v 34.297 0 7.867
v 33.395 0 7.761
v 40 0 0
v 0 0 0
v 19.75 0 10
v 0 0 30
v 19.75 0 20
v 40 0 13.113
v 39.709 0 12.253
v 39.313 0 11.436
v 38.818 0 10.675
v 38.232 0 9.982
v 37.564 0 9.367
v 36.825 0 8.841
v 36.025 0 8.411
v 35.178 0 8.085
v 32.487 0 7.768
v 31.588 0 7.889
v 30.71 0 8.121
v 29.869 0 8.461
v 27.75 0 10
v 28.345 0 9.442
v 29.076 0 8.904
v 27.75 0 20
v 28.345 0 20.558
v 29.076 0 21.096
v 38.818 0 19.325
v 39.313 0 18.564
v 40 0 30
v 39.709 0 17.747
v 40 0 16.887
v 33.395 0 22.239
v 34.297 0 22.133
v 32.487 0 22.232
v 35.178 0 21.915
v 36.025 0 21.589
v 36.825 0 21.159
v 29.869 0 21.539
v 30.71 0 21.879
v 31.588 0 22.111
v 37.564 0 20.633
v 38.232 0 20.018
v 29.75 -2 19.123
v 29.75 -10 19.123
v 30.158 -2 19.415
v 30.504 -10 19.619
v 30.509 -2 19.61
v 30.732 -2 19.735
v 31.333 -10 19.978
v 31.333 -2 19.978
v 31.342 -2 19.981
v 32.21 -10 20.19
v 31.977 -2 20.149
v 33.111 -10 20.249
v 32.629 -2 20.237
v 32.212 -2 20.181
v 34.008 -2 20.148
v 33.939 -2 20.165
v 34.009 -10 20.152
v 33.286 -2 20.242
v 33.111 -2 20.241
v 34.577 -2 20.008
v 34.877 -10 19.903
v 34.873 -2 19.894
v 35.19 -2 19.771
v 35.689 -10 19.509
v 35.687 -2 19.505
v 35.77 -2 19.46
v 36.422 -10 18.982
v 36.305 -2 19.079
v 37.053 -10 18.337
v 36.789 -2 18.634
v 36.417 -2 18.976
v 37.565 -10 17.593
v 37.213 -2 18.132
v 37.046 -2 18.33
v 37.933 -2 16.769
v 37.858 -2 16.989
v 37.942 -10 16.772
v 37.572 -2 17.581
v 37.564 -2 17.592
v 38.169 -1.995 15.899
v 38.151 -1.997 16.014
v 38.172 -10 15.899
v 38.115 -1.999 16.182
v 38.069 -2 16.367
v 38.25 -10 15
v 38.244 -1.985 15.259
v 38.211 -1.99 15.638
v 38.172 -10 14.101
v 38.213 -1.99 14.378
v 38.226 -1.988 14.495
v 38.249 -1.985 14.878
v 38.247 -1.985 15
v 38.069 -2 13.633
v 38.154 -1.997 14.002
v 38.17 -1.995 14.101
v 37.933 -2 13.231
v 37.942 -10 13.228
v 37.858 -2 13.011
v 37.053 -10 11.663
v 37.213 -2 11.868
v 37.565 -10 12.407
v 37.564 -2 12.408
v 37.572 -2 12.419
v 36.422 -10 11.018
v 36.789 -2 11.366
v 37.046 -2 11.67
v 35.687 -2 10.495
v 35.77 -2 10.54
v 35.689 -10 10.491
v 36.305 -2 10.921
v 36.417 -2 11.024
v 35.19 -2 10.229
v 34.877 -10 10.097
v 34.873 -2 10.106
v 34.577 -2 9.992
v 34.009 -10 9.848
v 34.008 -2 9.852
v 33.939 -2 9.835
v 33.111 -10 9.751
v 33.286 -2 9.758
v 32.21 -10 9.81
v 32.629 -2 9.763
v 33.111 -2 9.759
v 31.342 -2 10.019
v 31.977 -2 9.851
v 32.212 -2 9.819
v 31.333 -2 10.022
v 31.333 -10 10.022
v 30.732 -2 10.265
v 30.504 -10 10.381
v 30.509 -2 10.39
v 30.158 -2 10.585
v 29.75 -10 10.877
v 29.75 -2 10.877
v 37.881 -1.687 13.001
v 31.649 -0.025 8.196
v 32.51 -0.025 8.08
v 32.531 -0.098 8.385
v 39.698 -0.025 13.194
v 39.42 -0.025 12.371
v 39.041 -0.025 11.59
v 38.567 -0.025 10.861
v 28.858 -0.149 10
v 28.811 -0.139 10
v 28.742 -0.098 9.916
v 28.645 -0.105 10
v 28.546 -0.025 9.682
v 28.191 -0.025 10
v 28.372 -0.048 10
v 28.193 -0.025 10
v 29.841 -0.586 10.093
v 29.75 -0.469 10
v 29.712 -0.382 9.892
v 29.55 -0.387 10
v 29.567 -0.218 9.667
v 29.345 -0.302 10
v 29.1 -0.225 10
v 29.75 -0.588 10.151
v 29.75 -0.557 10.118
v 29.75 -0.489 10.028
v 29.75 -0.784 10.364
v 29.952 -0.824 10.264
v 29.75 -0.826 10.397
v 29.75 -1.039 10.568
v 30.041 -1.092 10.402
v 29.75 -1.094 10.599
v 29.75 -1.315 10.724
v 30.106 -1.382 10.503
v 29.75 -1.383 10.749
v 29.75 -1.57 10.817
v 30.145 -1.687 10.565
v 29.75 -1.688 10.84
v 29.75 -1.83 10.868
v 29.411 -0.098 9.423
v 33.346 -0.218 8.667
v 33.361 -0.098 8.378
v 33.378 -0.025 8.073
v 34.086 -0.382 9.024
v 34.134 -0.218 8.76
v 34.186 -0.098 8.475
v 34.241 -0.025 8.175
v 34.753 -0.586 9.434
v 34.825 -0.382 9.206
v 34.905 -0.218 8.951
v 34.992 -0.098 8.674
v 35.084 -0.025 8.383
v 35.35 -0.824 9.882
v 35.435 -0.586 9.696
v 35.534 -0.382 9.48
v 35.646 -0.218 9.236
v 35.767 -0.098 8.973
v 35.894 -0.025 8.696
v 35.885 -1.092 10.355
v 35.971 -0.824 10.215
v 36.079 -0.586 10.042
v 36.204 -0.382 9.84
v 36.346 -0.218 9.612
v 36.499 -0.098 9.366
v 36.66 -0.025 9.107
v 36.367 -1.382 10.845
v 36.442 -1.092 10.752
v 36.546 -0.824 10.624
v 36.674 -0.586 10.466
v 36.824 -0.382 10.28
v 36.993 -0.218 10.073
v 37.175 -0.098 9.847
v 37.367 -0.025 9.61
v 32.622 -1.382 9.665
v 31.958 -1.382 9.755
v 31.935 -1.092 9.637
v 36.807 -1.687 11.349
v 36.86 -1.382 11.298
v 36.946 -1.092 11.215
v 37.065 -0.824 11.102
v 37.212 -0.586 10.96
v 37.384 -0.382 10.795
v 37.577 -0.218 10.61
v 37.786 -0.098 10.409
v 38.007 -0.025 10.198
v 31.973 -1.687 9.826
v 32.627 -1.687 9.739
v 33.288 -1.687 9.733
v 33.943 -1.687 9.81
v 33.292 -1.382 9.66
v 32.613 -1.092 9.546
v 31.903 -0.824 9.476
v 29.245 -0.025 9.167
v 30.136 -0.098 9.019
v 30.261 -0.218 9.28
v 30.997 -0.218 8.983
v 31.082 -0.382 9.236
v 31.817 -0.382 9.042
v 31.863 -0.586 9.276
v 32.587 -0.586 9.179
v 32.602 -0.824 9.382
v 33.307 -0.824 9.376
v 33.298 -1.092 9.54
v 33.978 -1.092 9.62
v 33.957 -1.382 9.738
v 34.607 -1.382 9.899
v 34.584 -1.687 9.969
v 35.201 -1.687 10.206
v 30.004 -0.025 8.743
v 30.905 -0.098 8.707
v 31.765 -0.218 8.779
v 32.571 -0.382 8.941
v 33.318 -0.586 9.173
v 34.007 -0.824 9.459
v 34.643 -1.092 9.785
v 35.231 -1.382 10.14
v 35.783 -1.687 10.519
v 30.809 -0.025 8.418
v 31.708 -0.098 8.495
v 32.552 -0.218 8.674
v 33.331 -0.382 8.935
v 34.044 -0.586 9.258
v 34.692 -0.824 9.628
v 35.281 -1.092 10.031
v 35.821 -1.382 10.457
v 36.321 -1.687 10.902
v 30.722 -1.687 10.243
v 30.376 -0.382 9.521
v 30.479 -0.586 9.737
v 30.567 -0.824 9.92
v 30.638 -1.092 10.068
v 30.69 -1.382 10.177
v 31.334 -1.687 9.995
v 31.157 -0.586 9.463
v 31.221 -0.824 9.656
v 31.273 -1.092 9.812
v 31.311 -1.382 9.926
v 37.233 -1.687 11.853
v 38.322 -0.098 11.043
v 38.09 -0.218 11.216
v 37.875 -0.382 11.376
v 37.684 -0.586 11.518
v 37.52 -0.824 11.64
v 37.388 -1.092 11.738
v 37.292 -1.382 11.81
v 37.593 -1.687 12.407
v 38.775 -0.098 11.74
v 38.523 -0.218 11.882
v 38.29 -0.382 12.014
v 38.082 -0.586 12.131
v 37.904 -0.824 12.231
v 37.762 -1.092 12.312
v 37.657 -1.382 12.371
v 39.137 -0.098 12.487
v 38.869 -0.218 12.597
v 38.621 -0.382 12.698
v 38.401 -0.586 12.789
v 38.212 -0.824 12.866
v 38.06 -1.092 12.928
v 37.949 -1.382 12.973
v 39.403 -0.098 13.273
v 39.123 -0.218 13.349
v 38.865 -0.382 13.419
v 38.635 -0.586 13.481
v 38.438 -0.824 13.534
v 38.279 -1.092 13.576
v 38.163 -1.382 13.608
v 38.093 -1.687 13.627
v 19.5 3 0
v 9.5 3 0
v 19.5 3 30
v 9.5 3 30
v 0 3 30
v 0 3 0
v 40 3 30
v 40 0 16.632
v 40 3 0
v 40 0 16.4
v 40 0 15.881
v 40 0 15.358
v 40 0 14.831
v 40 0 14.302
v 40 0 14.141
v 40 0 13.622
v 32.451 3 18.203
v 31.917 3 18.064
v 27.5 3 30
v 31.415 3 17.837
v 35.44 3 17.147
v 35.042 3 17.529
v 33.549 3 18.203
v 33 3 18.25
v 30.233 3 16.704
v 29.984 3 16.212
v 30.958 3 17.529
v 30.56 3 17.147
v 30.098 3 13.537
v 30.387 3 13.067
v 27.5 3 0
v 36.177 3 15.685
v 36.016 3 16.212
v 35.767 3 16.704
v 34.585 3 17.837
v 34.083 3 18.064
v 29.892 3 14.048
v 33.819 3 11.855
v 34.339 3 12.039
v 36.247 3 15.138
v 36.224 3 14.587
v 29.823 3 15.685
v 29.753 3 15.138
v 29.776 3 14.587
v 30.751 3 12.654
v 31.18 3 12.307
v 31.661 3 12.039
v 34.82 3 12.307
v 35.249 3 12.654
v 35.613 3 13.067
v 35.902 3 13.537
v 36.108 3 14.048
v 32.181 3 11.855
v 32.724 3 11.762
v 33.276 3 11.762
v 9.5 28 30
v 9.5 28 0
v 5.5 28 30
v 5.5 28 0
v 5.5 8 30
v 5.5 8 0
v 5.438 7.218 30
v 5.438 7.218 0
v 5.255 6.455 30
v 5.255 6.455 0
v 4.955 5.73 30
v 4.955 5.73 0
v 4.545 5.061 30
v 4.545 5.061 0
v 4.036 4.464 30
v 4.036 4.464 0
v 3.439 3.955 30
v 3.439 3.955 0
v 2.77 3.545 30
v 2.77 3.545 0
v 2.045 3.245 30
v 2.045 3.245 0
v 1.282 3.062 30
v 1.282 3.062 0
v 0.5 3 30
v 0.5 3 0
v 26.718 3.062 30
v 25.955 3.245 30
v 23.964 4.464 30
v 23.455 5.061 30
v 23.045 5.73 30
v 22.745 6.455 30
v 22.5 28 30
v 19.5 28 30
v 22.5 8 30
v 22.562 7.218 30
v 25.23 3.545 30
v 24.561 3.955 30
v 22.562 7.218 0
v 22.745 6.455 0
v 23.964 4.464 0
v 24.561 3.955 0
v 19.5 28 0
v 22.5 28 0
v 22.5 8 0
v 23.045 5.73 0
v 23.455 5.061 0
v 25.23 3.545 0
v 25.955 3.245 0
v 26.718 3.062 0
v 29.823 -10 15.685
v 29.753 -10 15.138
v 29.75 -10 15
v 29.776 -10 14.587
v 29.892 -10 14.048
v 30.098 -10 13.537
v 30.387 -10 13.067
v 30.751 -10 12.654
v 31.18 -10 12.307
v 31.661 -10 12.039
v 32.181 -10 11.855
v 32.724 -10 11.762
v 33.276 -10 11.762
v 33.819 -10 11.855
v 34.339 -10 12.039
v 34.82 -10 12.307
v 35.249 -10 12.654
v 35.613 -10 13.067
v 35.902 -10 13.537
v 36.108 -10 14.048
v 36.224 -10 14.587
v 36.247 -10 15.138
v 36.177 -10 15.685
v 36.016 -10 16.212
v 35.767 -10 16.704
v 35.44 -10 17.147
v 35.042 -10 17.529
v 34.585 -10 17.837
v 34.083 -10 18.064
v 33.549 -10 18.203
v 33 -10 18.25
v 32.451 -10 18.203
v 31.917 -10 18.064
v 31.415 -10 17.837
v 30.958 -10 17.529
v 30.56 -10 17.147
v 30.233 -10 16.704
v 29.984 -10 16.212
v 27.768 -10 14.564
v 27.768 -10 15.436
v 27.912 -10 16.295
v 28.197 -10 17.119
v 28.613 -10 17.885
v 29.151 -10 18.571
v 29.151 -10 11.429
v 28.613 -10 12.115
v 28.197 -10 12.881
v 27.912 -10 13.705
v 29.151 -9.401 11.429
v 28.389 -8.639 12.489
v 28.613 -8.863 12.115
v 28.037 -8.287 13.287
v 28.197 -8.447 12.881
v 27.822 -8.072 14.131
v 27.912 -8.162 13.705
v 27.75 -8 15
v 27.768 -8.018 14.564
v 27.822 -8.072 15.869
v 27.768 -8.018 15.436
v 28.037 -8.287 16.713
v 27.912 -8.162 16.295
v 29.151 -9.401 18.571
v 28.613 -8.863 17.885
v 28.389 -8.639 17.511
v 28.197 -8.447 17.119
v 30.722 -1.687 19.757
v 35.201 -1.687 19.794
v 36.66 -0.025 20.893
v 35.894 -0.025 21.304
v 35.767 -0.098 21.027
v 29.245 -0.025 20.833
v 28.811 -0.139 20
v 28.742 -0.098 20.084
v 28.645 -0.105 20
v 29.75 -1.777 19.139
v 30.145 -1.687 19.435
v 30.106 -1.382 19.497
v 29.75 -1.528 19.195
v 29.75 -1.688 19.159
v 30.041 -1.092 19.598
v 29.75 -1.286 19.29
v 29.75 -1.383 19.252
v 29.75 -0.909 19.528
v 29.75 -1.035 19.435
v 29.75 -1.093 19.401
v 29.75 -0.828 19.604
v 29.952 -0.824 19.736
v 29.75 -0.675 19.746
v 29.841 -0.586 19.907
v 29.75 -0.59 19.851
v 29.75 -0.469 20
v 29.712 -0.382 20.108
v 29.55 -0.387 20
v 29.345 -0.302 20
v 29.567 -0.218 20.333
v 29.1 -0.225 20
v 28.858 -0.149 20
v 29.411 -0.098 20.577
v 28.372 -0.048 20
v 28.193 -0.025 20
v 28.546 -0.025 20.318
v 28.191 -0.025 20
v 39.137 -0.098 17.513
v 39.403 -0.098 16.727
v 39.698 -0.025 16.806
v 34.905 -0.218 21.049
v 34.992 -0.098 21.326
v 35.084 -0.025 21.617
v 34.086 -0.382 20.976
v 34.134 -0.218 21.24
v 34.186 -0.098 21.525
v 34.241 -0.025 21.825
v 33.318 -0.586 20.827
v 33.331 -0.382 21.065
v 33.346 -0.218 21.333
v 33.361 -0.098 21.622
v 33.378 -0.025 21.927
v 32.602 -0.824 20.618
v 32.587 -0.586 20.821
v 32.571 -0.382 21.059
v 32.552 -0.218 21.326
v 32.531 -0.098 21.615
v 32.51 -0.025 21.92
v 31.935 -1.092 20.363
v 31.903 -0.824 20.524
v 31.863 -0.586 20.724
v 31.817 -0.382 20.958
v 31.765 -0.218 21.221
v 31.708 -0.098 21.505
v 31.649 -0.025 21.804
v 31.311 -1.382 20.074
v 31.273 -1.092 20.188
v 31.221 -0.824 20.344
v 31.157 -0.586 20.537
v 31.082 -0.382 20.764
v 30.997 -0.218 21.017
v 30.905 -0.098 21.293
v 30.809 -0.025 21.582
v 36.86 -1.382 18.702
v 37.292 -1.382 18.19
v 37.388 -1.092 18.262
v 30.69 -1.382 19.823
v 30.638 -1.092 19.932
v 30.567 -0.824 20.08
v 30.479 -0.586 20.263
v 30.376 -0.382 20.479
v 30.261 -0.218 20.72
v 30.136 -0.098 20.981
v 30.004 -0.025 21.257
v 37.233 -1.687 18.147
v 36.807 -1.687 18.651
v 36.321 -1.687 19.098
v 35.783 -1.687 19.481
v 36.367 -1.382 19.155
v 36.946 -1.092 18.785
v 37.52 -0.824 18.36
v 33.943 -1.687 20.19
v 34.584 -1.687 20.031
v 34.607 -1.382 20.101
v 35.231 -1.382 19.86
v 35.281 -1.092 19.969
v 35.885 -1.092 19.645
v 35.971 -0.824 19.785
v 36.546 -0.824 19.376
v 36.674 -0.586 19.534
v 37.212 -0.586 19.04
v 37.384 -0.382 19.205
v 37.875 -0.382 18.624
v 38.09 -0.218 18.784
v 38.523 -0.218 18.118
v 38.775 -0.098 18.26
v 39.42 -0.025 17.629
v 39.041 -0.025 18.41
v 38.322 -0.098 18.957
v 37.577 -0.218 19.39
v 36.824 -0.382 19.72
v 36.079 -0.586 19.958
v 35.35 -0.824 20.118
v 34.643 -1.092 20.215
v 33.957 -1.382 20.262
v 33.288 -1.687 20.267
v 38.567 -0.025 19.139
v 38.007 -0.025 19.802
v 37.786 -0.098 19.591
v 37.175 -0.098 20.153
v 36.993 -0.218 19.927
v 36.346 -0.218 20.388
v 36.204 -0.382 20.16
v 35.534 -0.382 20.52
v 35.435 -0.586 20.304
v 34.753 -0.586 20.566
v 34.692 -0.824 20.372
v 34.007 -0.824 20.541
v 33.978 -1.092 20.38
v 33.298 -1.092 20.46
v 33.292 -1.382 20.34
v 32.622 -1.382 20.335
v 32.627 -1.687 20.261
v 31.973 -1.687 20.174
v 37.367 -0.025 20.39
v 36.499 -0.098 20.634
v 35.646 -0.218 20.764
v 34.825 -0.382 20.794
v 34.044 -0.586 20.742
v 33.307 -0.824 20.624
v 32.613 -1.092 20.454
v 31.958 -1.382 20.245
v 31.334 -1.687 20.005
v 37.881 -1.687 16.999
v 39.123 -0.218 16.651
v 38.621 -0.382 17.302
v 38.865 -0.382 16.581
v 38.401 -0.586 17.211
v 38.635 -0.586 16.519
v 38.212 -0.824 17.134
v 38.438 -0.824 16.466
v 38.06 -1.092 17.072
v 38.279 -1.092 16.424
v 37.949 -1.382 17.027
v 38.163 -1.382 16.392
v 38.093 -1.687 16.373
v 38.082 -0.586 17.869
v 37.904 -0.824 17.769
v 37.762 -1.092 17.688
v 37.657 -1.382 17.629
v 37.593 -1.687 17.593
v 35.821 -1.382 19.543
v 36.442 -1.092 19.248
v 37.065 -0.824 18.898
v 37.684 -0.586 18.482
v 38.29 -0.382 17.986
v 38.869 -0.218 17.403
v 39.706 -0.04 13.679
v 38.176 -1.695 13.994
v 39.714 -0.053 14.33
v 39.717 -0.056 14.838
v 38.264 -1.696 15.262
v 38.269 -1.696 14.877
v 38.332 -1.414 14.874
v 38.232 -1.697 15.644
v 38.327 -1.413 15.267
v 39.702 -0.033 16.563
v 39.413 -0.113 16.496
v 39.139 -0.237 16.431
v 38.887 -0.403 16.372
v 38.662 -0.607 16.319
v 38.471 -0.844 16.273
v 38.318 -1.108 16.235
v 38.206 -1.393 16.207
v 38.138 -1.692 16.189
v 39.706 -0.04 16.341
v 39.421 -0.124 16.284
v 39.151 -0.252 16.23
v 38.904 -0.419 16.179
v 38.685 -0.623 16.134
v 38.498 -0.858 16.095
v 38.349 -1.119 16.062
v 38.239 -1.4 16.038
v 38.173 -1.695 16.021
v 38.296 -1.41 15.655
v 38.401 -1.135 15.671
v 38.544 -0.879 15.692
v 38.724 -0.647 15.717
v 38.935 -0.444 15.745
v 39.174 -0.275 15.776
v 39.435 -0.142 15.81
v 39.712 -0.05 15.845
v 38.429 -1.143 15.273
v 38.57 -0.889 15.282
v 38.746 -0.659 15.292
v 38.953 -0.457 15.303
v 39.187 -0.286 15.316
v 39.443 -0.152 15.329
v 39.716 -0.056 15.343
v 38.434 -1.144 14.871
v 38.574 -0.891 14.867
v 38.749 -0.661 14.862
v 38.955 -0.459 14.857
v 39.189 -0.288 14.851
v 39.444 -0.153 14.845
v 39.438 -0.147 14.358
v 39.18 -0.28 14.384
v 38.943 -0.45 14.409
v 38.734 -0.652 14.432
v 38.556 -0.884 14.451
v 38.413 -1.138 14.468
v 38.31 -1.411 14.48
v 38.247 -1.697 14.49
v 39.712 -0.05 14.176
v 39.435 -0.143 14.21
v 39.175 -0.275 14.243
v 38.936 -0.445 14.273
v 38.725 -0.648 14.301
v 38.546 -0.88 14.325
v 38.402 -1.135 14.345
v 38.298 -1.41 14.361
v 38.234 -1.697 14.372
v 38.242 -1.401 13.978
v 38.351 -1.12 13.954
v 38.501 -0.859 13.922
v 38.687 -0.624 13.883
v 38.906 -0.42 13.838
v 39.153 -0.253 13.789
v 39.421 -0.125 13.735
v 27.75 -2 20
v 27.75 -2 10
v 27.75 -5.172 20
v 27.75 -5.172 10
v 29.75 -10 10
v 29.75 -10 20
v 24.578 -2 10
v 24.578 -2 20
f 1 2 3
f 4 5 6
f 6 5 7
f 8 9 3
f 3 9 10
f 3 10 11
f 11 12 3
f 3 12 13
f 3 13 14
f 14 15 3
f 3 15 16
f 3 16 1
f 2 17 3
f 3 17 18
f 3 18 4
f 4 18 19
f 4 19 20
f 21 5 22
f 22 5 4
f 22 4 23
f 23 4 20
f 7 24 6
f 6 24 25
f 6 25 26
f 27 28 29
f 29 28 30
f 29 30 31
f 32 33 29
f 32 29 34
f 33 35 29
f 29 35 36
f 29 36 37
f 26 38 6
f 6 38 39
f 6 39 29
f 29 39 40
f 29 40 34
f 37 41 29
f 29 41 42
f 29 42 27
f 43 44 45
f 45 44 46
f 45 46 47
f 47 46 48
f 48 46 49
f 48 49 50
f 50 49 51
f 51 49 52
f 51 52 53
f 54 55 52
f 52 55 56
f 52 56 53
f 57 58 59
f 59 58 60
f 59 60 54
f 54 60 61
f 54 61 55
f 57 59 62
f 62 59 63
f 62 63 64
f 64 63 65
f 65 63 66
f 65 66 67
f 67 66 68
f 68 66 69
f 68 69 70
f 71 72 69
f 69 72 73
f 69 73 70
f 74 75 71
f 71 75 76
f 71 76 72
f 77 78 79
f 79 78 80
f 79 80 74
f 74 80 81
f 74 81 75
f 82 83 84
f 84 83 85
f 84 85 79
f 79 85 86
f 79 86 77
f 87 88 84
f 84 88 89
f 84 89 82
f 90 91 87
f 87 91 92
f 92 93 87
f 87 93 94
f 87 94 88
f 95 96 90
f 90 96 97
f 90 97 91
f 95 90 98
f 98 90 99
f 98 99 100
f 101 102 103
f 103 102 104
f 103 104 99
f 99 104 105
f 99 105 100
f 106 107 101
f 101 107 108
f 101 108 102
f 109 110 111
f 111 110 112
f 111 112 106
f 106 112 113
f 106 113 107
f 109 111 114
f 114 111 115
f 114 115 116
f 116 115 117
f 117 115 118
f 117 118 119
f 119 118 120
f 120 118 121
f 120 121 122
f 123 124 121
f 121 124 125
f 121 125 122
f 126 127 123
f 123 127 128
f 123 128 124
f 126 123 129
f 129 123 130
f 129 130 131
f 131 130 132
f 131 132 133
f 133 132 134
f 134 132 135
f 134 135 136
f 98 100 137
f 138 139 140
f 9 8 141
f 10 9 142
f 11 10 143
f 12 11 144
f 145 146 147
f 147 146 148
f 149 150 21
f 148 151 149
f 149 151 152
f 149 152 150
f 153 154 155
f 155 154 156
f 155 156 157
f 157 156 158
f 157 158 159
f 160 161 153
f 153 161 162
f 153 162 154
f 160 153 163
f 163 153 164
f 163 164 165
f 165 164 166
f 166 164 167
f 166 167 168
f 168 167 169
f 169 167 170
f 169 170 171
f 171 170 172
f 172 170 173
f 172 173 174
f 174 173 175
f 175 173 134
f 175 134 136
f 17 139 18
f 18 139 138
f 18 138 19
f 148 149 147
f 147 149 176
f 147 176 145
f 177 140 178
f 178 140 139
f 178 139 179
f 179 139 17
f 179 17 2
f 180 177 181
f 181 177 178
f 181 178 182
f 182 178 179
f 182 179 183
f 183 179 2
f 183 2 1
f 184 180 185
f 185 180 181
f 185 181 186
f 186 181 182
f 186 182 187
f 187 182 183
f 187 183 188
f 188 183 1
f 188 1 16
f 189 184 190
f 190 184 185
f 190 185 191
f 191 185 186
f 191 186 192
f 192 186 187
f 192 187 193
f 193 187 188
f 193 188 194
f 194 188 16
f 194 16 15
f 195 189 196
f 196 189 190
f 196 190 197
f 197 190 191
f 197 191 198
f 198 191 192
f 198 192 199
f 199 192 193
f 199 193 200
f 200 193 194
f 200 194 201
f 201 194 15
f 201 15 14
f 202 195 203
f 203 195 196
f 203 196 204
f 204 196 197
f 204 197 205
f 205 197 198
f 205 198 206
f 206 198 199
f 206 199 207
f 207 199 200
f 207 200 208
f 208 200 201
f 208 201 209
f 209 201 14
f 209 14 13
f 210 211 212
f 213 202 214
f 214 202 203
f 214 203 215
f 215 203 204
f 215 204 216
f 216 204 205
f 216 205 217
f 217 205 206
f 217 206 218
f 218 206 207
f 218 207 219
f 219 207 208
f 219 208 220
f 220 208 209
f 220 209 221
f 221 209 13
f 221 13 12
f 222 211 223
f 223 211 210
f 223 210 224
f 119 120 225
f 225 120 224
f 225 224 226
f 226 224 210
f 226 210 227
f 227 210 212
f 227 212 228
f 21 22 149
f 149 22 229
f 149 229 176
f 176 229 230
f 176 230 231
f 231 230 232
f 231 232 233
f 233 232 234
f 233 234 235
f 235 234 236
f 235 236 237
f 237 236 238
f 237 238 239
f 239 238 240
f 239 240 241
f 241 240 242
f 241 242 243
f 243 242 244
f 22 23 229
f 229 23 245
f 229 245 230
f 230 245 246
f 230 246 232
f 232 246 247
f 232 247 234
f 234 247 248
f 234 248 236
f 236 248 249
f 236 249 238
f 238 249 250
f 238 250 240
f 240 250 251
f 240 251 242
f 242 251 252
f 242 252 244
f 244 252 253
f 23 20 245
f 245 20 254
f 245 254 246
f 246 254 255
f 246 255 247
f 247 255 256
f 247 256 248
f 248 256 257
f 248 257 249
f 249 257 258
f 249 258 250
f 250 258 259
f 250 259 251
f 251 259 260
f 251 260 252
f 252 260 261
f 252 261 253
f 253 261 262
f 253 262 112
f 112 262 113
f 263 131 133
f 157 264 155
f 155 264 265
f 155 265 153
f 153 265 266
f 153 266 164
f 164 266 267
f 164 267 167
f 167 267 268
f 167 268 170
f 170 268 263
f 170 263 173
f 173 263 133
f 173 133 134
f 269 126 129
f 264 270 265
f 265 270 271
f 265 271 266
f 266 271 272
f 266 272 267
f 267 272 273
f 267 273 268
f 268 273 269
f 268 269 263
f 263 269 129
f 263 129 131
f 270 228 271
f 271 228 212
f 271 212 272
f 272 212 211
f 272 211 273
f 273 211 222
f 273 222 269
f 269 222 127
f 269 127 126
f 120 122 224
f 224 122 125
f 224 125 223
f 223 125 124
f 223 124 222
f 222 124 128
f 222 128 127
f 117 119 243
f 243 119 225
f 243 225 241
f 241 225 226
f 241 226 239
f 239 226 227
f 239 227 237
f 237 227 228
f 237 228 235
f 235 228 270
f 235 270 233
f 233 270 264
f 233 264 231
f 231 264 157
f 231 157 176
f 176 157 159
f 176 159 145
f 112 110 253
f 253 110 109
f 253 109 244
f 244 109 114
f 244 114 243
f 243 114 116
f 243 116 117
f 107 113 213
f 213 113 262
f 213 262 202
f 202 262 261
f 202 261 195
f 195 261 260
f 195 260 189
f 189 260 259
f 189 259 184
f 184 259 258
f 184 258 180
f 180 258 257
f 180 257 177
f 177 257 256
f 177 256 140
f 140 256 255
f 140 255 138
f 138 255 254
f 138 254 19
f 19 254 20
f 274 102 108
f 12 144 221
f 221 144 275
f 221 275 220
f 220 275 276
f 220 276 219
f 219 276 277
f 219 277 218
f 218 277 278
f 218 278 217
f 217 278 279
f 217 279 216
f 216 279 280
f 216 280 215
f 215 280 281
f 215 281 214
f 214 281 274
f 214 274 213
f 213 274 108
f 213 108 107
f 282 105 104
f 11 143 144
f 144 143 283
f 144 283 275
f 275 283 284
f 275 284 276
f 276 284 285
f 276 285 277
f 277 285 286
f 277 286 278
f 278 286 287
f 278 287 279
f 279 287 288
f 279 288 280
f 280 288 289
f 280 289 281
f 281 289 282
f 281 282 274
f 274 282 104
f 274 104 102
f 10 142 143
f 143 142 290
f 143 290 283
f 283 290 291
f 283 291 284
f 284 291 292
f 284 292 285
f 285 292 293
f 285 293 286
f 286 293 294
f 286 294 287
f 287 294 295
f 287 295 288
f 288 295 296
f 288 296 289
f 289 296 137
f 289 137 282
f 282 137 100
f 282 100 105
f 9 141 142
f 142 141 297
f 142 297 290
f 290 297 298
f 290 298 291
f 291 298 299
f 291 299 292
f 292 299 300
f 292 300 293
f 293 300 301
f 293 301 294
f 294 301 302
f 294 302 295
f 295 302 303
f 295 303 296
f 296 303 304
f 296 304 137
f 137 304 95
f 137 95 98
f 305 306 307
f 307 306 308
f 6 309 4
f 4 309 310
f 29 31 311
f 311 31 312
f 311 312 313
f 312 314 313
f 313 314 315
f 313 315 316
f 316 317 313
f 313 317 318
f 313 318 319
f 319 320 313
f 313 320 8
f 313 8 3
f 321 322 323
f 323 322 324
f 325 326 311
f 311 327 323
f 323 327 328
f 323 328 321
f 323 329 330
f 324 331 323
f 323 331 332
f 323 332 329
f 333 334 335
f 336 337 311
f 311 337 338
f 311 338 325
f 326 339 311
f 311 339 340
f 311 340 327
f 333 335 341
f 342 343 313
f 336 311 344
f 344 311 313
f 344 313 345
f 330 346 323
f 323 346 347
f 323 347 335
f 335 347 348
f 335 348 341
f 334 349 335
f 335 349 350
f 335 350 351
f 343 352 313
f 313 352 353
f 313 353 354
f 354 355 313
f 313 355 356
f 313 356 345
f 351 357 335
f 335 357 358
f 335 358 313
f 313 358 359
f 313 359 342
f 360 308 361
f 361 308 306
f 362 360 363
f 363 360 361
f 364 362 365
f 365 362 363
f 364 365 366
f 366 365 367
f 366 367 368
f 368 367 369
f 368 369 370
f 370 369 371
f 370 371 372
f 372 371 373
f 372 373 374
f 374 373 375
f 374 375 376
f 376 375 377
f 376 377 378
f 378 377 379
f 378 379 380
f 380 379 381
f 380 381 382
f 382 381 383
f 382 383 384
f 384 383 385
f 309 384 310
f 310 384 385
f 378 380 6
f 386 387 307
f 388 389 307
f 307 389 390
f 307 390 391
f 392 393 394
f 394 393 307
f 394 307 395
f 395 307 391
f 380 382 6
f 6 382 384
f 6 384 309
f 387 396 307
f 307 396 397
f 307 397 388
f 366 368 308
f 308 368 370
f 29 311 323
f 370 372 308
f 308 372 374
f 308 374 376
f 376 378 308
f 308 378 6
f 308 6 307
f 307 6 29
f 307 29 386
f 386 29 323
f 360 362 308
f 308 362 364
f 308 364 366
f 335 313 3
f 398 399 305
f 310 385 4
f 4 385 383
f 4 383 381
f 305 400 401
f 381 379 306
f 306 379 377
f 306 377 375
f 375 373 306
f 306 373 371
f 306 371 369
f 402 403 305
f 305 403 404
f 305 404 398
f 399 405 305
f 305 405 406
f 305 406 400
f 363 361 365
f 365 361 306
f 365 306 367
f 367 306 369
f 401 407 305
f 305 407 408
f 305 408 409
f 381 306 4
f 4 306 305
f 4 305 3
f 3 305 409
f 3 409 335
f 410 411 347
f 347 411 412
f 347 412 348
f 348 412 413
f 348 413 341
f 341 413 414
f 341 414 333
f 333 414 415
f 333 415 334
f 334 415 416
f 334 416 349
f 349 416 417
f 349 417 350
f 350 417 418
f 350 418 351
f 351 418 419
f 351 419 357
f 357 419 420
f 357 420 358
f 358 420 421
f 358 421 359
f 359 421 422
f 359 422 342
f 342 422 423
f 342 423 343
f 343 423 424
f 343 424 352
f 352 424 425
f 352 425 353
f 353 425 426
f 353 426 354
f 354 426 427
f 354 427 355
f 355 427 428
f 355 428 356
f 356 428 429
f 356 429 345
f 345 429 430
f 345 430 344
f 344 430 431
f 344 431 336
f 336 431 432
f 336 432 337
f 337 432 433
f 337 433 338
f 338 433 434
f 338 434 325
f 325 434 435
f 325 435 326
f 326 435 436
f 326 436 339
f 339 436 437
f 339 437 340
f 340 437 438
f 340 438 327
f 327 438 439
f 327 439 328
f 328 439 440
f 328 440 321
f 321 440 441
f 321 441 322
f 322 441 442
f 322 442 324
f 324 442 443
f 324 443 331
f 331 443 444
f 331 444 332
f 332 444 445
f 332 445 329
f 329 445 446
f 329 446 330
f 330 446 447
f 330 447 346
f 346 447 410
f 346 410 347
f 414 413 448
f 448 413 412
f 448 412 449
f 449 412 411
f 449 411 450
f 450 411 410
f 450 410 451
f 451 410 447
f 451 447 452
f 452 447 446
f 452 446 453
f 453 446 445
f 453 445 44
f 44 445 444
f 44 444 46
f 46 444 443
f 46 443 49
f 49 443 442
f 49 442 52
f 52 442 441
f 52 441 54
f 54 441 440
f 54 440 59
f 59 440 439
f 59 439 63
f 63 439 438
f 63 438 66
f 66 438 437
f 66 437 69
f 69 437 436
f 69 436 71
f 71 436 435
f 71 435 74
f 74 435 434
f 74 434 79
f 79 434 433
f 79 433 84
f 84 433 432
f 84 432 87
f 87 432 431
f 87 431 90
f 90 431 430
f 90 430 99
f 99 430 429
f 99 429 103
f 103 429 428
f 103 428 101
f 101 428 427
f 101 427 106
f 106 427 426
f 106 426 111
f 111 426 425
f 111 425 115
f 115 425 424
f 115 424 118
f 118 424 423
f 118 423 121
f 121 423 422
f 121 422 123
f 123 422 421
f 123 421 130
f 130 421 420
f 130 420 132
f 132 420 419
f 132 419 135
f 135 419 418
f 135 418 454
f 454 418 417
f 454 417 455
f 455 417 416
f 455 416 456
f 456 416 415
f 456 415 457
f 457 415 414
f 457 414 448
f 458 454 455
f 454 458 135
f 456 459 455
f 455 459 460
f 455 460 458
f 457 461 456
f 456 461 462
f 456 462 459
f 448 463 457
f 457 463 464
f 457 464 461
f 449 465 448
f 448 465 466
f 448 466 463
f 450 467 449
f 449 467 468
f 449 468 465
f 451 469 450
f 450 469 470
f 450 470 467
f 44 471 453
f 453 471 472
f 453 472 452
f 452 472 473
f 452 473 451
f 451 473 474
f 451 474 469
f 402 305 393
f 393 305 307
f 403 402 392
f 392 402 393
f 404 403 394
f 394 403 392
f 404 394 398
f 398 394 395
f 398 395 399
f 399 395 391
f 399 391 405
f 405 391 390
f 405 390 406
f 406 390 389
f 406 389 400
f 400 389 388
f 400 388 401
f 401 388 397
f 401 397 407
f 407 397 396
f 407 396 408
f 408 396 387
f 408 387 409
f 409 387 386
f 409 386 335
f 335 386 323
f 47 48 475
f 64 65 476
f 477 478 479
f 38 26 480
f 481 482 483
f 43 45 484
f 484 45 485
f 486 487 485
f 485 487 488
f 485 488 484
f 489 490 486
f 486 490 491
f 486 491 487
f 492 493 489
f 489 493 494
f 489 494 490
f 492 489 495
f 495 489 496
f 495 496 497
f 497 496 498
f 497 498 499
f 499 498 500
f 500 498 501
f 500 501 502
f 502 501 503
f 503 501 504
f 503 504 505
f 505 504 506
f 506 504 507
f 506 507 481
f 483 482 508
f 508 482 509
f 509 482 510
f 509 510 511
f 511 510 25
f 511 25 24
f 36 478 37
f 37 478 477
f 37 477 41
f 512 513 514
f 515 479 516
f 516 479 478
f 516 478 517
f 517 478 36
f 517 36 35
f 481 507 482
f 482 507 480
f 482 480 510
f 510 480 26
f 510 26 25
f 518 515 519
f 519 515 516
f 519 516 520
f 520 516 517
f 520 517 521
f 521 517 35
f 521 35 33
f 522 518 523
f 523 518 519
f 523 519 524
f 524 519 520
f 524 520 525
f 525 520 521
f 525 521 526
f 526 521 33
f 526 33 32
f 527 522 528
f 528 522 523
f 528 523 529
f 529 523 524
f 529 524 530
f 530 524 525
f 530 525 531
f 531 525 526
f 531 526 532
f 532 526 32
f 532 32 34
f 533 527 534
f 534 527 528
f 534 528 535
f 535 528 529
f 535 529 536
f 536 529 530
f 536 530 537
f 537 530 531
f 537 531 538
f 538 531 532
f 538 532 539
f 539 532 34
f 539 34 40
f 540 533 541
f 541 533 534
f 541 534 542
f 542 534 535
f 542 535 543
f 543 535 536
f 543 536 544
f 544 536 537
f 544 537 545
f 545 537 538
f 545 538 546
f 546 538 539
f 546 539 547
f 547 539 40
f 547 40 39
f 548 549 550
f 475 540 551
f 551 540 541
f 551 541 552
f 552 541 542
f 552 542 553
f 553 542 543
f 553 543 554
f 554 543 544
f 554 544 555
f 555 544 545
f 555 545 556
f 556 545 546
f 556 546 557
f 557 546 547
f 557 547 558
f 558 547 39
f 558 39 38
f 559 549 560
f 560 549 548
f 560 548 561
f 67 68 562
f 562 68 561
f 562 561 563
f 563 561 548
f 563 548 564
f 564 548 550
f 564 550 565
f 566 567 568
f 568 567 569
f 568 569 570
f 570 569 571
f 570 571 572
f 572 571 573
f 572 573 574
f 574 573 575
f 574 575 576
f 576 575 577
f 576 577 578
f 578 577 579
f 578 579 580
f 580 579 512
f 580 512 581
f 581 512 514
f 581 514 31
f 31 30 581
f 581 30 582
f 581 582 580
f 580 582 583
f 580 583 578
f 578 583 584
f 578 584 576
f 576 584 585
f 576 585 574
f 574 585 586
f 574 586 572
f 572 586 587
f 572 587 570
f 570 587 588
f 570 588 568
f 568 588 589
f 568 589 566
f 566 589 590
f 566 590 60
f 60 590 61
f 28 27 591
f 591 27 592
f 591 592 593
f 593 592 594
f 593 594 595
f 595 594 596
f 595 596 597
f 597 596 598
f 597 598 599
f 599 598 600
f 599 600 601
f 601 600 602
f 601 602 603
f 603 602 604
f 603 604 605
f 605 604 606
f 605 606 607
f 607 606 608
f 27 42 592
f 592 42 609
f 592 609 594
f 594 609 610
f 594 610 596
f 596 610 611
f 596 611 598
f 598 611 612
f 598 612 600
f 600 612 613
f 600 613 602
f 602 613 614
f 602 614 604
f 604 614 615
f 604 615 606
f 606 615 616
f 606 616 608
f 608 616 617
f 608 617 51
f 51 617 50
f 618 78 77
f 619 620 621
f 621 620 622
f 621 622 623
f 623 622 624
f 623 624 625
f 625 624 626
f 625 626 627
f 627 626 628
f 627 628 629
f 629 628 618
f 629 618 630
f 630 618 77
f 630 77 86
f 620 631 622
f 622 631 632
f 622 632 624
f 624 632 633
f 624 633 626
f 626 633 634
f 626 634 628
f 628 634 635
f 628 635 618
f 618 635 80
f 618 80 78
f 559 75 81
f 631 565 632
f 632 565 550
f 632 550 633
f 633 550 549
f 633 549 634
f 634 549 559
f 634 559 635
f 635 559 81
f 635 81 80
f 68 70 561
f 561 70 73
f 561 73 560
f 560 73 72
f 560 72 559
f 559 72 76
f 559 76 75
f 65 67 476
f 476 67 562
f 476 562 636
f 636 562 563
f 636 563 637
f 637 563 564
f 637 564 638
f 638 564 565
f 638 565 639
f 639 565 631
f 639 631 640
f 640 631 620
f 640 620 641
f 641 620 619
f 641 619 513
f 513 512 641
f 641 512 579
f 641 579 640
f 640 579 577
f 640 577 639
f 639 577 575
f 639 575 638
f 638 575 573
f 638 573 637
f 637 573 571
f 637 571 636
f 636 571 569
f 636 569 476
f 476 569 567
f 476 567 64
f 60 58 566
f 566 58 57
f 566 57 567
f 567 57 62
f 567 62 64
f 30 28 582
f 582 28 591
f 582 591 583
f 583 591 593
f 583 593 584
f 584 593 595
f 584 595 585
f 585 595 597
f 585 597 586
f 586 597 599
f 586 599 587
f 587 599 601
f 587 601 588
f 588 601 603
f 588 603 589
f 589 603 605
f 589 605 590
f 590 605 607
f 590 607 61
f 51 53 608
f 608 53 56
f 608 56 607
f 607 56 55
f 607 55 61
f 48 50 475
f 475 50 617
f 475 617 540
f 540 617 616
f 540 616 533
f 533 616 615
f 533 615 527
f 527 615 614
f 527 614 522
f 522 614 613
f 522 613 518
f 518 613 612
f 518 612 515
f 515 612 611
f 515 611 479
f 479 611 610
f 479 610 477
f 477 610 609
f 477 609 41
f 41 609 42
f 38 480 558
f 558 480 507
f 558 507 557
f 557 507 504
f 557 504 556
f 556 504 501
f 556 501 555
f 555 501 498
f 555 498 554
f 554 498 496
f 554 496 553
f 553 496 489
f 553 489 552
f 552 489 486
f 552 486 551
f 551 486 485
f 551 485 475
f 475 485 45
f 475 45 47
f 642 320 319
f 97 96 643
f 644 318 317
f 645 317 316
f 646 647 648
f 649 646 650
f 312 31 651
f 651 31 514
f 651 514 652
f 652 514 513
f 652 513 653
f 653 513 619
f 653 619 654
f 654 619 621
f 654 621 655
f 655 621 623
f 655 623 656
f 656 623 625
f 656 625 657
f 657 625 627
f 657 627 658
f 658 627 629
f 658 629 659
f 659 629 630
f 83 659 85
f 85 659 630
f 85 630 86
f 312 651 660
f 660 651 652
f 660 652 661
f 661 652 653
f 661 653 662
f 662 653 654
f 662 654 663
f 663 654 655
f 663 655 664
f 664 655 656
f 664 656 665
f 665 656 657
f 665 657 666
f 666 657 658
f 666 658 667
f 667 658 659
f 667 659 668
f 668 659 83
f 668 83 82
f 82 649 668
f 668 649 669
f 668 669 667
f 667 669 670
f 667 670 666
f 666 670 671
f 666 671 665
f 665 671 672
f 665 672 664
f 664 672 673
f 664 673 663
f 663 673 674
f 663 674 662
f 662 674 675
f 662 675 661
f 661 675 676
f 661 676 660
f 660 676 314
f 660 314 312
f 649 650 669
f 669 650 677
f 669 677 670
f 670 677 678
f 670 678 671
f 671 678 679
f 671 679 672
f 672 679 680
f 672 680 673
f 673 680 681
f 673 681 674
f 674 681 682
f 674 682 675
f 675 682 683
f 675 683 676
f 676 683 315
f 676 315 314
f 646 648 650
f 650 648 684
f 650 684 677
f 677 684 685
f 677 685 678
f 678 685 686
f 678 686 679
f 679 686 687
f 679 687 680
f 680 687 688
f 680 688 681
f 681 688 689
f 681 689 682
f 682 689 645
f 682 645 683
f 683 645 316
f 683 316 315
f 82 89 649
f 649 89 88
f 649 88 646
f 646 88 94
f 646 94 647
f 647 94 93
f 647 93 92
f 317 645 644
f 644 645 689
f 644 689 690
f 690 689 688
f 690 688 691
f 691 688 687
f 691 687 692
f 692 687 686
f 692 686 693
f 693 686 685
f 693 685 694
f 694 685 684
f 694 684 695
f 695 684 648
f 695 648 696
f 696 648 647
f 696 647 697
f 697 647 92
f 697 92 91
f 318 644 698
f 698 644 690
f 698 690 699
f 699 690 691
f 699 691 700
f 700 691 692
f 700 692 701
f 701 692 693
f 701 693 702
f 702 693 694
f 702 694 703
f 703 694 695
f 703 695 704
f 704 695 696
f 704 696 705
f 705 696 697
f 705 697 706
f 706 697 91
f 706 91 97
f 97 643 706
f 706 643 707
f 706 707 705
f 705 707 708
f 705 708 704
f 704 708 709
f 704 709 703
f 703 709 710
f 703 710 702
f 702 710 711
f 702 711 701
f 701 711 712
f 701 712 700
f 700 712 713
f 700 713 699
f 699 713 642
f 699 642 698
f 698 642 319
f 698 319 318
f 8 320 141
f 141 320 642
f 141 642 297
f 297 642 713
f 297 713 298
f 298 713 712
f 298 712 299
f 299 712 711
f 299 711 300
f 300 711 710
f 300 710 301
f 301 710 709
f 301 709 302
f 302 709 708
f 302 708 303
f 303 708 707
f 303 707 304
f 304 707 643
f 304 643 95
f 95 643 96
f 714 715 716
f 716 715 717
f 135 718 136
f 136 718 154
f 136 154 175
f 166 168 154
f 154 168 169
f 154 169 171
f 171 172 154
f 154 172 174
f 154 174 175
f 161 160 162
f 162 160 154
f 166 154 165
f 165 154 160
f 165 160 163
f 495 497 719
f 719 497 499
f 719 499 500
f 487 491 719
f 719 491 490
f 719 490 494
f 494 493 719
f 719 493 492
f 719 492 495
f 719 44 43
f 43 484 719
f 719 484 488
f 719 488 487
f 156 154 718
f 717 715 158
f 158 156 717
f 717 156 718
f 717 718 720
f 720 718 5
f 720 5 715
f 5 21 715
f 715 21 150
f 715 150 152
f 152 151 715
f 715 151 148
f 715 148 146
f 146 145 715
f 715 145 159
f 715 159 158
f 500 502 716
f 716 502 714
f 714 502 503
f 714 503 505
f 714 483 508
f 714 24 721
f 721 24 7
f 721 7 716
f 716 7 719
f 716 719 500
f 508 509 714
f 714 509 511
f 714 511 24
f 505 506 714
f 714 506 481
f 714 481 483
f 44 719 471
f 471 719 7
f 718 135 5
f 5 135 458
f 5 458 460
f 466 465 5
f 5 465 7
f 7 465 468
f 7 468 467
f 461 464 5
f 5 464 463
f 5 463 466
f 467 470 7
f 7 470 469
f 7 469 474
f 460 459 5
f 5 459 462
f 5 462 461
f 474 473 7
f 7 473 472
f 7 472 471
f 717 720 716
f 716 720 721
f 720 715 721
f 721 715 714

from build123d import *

# Parameters (mm, degrees)
BOSS_EXTRU_1_DEPTH      = 30
ESQUISSE2_R             = 3.25
ENL_V_MAT_EXTRU_1_DEPTH = 56.901699437
ESQUISSE3_R             = 5.25
ESQUISSE3_R_2           = 3.25
EXTRU_MINCE1_DEPTH      = 10
ESQUISSE5_W             = 3
ESQUISSE5_H             = 25
BOSS_EXTRU_3_DEPTH      = 30
CONG_1_R                = 5
CONG_2_R                = 2
EXTRU_MINCE2_START      = -10
EXTRU_MINCE2_DEPTH      = 10


with BuildPart() as part:
    # Esquisse1 → Boss.-Extru.1 (new body)
    with BuildSketch(Plane.XY):
        with BuildLine():
            Line((0, 0), (40, 0))
            Line((40, 0), (40, 3))
            Line((40, 3), (9.5, 3))
            Line((9.5, 3), (9.5, 28))
            Line((9.5, 28), (5.5, 28))
            Line((5.5, 28), (5.5, 8))
            ThreePointArc((5.5, 8), (4.035533906, 4.464466094), (0.5, 3))
            Line((0.5, 3), (0, 3))
            Line((0, 3), (0, 0))
        make_face()
    extrude(amount=BOSS_EXTRU_1_DEPTH)

    # Esquisse2 → Enlèv. mat.-Extru.1 (cut, through all)
    with BuildSketch(Plane(origin=(0, 3, 0), x_dir=(1, 0, 0), z_dir=(0, 1, 0))):
        with Locations(Location((33, -15, 0), (0, 0, 270))):
            Circle(ESQUISSE2_R)
    extrude(amount=-ENL_V_MAT_EXTRU_1_DEPTH, mode=Mode.SUBTRACT)

    # Esquisse3 → Extru.-Mince1 (add)
    with BuildSketch(Plane(origin=(0, 0, 0), x_dir=(-1, 0, 0), z_dir=(0, -1, 0))):
        with Locations((-33, -15)):
            Circle(ESQUISSE3_R)
        with Locations((-33, -15)):
            Circle(ESQUISSE3_R_2, mode=Mode.SUBTRACT)
    extrude(amount=EXTRU_MINCE1_DEPTH)

    # Esquisse5 → Boss.-Extru.3 (add)
    with BuildSketch(Plane.XY.offset(30)):
        with Locations((21, 15.5)):
            Rectangle(ESQUISSE5_W, ESQUISSE5_H)
    extrude(amount=-BOSS_EXTRU_3_DEPTH)

    # Congé1
    cong_1_edges = [part.edges().sort_by_distance(p)[0] for p in [
        (22.5, 3, 15),
    ]]
    fillet(cong_1_edges, radius=CONG_1_R)

    # Congé2
    cong_2_edges = [part.edges().sort_by_distance(p)[0] for p in [
        (38.25, 0, 15),
    ]]
    fillet(cong_2_edges, radius=CONG_2_R)

    # Esquisse6 → Extru.-Mince2 (add)
    with BuildSketch(Plane.XY.offset(30).offset(EXTRU_MINCE2_START)):
        Polygon((29.75, -10), (19.75, 0), (29.75, 0), align=None)
        Polygon((27.75, -5.171572875), (24.578427125, -2), (27.75, -2), align=None, mode=Mode.SUBTRACT)
    extrude(amount=-EXTRU_MINCE2_DEPTH)


solid = part.part
